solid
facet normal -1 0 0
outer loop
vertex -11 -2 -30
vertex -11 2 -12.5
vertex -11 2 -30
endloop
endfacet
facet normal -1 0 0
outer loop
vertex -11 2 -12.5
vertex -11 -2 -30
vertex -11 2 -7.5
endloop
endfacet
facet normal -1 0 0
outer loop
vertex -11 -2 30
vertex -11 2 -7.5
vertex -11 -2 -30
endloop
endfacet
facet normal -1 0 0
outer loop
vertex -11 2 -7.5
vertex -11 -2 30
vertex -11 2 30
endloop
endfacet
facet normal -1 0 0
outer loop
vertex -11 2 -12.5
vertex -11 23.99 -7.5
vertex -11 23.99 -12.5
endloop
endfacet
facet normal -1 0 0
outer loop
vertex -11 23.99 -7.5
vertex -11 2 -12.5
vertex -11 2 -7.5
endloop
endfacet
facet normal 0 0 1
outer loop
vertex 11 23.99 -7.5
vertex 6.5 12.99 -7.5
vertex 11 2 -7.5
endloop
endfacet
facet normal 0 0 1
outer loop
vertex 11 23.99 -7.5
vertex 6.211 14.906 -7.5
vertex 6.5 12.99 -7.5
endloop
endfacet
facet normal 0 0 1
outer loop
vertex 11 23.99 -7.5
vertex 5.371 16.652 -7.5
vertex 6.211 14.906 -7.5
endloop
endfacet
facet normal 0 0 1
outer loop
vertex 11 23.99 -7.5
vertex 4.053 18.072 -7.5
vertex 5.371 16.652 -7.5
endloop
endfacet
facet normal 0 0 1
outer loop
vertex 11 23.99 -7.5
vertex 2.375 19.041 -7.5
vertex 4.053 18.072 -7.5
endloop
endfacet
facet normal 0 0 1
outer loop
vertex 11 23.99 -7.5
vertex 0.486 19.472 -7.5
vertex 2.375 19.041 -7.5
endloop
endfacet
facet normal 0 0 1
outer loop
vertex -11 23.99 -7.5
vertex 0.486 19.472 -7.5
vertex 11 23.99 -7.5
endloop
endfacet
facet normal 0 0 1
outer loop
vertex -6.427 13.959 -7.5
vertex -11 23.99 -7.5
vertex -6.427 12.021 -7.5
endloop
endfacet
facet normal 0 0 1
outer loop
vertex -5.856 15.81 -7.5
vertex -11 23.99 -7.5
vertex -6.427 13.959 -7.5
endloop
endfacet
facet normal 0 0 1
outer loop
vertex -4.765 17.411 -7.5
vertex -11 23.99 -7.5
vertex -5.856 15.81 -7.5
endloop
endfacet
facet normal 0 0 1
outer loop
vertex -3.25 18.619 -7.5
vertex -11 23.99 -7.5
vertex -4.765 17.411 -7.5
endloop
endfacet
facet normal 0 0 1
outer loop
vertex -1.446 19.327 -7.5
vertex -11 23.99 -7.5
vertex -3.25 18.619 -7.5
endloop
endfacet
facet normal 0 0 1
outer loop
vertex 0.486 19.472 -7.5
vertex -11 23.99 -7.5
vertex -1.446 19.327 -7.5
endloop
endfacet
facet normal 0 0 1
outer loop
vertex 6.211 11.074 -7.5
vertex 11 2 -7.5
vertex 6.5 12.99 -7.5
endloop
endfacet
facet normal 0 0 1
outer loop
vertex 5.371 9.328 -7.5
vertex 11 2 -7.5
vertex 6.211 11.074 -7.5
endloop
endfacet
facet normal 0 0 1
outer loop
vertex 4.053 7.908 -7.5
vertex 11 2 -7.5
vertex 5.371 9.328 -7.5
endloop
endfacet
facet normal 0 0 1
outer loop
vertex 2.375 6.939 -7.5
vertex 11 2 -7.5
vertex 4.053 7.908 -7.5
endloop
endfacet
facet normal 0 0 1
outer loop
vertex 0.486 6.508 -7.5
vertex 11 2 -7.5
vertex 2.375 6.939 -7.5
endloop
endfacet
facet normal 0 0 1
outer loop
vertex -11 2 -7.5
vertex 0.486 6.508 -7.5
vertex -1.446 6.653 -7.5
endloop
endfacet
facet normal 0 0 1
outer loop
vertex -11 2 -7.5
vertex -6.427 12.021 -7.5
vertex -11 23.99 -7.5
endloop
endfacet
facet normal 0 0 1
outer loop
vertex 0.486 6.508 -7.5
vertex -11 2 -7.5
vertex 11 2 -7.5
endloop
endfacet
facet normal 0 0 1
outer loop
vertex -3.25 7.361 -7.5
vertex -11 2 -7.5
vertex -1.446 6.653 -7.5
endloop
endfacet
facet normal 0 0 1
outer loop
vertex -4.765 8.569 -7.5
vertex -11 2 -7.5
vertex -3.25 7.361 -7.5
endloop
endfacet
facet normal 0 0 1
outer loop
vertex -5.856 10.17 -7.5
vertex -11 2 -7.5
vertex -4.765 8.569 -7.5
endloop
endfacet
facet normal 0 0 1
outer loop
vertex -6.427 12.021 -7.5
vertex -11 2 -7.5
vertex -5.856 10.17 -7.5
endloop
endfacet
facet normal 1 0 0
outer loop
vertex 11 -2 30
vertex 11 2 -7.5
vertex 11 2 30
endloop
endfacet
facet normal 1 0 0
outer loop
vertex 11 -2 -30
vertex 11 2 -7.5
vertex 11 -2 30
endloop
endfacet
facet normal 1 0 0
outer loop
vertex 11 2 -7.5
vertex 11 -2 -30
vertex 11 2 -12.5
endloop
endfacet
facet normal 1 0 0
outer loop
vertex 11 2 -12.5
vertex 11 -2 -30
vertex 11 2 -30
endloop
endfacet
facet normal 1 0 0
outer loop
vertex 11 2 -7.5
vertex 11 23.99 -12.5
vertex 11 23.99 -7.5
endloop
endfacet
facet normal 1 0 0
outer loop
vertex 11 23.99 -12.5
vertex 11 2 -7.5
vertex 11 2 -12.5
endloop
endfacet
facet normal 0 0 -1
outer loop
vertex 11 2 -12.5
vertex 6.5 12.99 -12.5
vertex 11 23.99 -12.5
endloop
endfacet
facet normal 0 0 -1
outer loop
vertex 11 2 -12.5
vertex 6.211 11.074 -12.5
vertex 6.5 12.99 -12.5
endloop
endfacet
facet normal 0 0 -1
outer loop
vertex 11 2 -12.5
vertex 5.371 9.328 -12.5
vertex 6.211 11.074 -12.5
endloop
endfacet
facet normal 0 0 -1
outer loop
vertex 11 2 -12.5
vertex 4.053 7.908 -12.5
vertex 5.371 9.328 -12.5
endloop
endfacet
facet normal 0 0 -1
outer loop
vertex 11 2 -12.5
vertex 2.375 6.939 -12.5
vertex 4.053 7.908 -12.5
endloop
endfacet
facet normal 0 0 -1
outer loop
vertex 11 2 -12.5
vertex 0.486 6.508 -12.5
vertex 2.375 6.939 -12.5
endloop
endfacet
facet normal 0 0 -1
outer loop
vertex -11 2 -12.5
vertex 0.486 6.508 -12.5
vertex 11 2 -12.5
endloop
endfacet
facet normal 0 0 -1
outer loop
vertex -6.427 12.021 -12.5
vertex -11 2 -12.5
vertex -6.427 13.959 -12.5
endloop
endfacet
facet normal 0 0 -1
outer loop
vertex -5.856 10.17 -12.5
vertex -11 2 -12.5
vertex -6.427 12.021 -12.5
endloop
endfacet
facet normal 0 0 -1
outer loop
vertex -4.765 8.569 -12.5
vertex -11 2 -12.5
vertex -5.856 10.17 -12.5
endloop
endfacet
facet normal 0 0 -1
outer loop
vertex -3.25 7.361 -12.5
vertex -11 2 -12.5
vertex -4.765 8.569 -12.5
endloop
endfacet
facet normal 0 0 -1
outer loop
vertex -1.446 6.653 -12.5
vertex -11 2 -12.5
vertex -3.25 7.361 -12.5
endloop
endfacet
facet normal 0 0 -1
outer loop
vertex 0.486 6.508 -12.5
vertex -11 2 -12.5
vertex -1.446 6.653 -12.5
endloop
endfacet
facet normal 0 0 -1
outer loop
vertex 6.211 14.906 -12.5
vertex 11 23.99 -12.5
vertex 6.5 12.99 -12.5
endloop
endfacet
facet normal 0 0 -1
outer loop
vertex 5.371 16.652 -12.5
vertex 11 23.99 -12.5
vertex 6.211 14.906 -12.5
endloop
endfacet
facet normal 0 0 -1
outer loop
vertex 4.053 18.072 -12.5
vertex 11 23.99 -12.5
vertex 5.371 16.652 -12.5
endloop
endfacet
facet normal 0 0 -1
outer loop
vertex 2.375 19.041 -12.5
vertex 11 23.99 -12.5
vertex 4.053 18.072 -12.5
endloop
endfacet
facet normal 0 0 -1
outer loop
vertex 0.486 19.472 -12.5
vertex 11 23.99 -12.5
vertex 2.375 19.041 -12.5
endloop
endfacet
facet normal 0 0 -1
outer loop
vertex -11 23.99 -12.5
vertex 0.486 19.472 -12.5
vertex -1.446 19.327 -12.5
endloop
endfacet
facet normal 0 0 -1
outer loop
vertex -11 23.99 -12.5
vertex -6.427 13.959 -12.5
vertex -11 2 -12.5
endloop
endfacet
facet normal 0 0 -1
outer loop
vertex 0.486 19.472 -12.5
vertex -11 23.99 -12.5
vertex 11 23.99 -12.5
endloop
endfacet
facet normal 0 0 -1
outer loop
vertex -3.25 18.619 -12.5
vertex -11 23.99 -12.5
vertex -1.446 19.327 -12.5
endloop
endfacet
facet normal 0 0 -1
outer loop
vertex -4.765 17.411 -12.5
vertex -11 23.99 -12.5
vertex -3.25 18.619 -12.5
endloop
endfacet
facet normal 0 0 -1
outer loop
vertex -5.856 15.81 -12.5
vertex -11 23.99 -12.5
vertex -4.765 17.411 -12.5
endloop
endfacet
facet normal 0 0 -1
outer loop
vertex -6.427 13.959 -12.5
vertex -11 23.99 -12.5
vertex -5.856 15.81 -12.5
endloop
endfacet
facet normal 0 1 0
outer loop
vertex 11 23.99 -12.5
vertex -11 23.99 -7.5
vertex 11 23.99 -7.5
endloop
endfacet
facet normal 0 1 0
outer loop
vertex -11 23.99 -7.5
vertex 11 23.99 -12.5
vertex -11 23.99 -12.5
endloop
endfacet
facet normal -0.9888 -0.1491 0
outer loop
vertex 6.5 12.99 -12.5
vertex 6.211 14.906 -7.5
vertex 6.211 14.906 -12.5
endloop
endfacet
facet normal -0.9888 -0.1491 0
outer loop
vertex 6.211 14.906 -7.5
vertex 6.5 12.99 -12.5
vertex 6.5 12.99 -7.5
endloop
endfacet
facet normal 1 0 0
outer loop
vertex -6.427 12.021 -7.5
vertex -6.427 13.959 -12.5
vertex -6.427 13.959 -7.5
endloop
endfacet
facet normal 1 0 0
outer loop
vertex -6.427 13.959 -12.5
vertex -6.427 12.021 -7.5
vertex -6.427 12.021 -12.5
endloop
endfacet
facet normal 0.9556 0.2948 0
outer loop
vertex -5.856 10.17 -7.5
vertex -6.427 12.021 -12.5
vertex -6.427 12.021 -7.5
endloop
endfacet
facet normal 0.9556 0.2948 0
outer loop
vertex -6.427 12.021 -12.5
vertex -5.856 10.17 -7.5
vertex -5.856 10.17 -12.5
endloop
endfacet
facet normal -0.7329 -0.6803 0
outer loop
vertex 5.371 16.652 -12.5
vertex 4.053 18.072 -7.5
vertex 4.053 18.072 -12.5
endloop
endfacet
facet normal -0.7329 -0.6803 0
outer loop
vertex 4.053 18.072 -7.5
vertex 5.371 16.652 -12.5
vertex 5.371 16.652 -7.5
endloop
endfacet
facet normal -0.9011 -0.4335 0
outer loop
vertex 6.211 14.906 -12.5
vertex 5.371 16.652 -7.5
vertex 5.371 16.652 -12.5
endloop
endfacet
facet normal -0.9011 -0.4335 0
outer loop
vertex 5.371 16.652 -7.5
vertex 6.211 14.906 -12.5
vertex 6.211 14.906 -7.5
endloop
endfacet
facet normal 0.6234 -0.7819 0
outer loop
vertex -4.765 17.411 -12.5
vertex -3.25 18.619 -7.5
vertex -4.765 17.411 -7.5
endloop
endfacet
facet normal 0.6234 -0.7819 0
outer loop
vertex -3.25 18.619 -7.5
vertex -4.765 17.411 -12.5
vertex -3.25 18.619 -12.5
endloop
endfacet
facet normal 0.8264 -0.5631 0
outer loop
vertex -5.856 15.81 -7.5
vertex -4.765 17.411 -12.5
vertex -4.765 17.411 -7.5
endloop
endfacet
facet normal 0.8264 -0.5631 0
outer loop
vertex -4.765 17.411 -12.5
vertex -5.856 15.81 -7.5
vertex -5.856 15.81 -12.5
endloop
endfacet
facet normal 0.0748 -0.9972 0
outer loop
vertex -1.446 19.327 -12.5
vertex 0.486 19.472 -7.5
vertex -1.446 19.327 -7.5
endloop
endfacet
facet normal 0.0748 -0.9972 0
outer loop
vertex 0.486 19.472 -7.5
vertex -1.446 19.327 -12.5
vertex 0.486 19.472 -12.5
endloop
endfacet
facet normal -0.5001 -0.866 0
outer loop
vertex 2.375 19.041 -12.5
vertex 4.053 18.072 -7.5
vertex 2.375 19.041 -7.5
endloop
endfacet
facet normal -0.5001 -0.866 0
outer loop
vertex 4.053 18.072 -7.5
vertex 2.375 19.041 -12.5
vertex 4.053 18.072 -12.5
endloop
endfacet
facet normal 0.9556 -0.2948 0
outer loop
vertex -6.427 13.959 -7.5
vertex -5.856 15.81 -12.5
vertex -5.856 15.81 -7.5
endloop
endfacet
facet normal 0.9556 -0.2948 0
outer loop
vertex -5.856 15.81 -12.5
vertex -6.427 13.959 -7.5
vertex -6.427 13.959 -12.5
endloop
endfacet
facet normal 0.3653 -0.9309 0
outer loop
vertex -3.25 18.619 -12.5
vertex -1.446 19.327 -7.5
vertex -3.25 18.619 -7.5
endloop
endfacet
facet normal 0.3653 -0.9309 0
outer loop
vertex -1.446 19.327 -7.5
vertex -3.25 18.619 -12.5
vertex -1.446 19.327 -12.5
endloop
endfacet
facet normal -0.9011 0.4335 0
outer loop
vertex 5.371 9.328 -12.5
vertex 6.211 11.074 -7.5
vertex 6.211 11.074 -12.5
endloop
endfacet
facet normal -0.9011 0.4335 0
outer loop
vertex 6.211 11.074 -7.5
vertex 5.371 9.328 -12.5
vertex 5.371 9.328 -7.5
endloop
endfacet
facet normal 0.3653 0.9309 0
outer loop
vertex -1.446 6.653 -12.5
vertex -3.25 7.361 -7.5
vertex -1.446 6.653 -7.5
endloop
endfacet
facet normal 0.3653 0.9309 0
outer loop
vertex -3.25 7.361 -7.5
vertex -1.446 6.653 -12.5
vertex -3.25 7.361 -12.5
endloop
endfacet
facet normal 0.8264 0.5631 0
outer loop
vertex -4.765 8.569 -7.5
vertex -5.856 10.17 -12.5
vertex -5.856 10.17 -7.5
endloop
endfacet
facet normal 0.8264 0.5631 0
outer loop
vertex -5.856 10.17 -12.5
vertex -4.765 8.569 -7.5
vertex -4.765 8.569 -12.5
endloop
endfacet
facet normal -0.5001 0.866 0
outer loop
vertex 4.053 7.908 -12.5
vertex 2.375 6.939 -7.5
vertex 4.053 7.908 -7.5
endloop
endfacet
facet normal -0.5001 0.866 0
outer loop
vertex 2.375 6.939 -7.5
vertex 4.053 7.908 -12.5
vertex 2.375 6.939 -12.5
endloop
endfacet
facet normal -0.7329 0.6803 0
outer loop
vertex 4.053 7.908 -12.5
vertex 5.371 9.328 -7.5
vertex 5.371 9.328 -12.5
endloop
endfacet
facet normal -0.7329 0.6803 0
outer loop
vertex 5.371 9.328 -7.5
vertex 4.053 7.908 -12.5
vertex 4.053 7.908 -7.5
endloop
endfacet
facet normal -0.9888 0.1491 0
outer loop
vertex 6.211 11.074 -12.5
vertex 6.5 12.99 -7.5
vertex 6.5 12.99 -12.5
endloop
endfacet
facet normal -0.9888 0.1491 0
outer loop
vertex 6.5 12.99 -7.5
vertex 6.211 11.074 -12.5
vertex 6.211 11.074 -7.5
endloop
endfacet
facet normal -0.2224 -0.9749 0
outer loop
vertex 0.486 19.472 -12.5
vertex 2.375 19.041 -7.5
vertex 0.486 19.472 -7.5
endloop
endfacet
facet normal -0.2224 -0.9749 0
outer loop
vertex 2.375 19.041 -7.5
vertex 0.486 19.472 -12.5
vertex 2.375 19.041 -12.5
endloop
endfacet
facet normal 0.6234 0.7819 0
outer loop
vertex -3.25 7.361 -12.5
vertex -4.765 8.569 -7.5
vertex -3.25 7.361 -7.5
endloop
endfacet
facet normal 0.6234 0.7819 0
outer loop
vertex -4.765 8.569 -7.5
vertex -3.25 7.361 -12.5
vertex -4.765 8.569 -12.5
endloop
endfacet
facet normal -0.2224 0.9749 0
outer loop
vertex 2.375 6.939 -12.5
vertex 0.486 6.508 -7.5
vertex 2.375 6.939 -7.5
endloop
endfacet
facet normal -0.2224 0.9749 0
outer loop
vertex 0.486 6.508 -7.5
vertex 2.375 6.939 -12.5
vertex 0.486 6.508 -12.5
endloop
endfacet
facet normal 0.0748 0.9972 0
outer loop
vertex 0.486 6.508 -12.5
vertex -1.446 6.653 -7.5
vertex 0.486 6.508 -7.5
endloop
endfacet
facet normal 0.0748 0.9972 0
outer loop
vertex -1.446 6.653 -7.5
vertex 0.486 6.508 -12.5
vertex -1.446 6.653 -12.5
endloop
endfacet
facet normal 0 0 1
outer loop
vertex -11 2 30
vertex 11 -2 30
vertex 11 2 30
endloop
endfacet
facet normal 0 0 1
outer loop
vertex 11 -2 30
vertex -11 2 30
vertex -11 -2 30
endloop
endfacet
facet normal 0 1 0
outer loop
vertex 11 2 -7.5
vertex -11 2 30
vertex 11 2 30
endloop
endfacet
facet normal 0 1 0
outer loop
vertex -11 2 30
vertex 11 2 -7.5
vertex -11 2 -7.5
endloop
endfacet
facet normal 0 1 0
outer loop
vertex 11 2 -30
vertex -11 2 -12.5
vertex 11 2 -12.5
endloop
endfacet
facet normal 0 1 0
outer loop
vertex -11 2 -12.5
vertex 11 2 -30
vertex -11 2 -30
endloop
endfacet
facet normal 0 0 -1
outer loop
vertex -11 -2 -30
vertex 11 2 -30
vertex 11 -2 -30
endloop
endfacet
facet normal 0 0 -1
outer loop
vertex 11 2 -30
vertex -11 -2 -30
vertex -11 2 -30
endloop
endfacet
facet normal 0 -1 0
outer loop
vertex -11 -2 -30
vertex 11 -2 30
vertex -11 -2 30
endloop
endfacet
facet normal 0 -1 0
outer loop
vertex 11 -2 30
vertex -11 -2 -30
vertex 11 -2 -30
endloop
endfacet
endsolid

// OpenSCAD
cube([22,4,60],center=true);
translate([0,12.99,-10])
difference()
{   
    cube([22,22,5],center=true);
    cylinder(r1=13/2,r2=13/2,h=10,center=true);
}
